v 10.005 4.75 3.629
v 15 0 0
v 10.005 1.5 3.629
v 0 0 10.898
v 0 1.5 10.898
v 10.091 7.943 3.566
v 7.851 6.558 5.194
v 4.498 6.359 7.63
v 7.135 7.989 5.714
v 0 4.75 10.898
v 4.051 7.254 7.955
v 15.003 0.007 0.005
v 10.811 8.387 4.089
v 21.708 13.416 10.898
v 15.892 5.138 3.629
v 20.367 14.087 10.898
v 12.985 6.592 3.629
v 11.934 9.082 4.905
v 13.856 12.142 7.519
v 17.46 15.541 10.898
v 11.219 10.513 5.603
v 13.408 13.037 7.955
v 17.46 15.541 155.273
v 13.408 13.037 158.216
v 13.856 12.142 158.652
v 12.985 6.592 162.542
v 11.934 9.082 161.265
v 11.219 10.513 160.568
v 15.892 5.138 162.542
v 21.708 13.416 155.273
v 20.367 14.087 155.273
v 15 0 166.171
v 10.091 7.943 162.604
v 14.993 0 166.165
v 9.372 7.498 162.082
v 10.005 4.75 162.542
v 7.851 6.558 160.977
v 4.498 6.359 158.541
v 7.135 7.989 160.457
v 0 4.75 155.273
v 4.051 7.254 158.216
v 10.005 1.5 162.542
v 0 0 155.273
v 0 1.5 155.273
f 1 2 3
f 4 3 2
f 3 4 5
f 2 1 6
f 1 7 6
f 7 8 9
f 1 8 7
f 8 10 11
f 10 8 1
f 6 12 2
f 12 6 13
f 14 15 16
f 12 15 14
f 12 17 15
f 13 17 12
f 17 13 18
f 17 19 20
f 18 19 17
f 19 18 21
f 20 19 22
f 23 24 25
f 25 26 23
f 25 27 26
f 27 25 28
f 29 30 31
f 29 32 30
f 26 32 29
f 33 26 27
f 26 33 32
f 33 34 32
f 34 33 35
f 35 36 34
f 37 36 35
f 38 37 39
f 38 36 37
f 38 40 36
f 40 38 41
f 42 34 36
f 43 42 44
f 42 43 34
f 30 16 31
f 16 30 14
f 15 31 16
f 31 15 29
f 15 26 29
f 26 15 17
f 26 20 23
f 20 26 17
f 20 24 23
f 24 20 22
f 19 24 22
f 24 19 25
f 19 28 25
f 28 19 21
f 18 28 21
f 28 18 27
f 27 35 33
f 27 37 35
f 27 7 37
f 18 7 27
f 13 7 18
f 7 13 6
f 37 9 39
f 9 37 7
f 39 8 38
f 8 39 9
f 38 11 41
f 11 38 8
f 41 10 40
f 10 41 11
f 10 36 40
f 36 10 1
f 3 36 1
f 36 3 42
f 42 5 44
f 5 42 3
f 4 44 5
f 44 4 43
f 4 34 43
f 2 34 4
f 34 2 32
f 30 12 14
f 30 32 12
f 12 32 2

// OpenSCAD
// Regular Dodecahedron Edge Ribs


// Cf. https://github.com/openscad/openscad/issues/4603 for a good discussion
// that helped resolve some of the issues in this design.


// Variable parameters to cusomize the edge ribs
paneEdge = (6 * 25.4); // paneEdge (6in x 25.4 mm/in)
edgeThickness = 1.5;   // thickness of the edge
ribWidth = 15;         // width of the rib
paneThickness = 3.25;  // thickness of the pane
channelWidth = 11;     // width of LED strip channel
channelDepth = 1;      // depth of LED strip channel
wireWidth = 3 * 1.6;   // width of wire channel (3x 22 AWG insulated wires)
wireDepth = 1.6;       // depth of wire channel (1x 22 AWG insulated wire)
dihedral = 116.56505;  // angle of polyhedron dihedral
interior = 108.0;      // angle of face interior
fudge = 0.01;          // render artifact elimination fudge factor

// Calculated parameters
edge = 0.667 * ribWidth  * tan(interior / 2) + paneEdge;
echo("pane edge", paneEdge);
echo("edge", edge);

difference() {
    extruded_edge(edge, edgeThickness, ribWidth, paneThickness, channelWidth, channelDepth, wireWidth, wireDepth, dihedral);
    bevel_cuts(ribWidth, interior, dihedral);
    translate([ribWidth,0,edge]) {
        rotate([0,0,180-dihedral]) {
            translate([ribWidth,0,0]) {
                rotate([0,180,0]) {
                    bevel_cuts(ribWidth, interior, dihedral);
                }
            }
        }
    }
}


// Bevel cuts for the end of the rib
module bevel_cuts(ribWidth, interior, dihedral) {
    union() {
        angle_cut(ribWidth, interior);
        translate([ribWidth,0,0]) {
            rotate([0,0,180-dihedral]) {
                translate([ribWidth, 0, 0]) {
                    mirror([1,0,0]) {
                        angle_cut(ribWidth, interior);
                    }
                }
            }
        }
    }
}


// Half of one bevel
module angle_cut(ribWidth, interior) {

    angle_ab = 90 - (interior / 2);

    ax = 0;
    ay = 0;
    az = 0;
    bx = ribWidth;
    by = 0;
    bz = 0;
    cx = 0;
    cy = 0;
    cz = ribWidth * tan(angle_ab);
    dx = 0;
    dy = 20;
    dz = 0;
    ex = ribWidth;
    ey = 20;
    ez = 0;
    fx = 0;
    fy = 20;
    fz = ribWidth * tan(angle_ab);

    polyhedron(
        points=[
            [ax-fudge, ay-fudge, az-fudge], // point a (0)
            [bx, by-fudge, bz],             // point b (1)
            [cx, cy-fudge, cz],             // point c (2)
            [dx-fudge, dy, dz-fudge],       // point d (3)
            [ex, ey, ez],                   // point e (4)
            [fx, fy, fz]                    // point f (5)
        ],
        faces=[
            [0, 3, 5, 2], // face A
            [0, 1, 4, 3], // face B
            [1, 2, 5, 4], // face C
            [3, 4, 5],    // face D
            [0, 2, 1]     // face E
        ],
        convexity=10
    );
};


// Rib extrusion
module extruded_edge(edge, edgeThickness, ribWidth, paneThickness, channelWidth, channelDepth, wireWidth, wireDepth, dihedral) {

    linear_extrude(height=edge, center=false, convexity=10, twist=0, slices=20, scale=1) {
        
        ax = 0;
        ay = 0;
        bx = ribWidth;
        by = 0;
        cx = ribWidth + ribWidth * cos(180 - dihedral);
        cy = ribWidth * sin(180 - dihedral);
        dx = cx - edgeThickness * cos(dihedral - 90);
        dy = cy + edgeThickness * sin(dihedral - 90);
        ex = dx - 0.667 * ribWidth * cos(180 - dihedral);
        ey = dy - 0.667 * ribWidth * sin(180 - dihedral);
        fx = ex - paneThickness * cos(dihedral - 90);
        fy = ey + paneThickness * sin(dihedral - 90);
        gx = fx + 0.667 * ribWidth * cos(180 - dihedral);
        gy = fy + 0.667 * ribWidth * sin(180 - dihedral);
        px = 0;
        py = edgeThickness + paneThickness;
        qx = 0.667 * ribWidth;
        qy = py;
        rx = qx;
        ry = edgeThickness;
        sx = 0;
        sy = ry; 

        angle_opq = atan((gy - py) / gx);  // derived angle of inside edge
        gp = gx / cos(angle_opq);          // total width of inside edge
        gh = 0.5 * (gp - channelWidth);    // width of offset on either side of the LED channel
        ho = gp - 2 * gh;                  // derived width of LED channel (should match specified)
        jm = wireWidth;                    // total width of wire channel
        ij = 0.5 * (ho - jm);              // width of offset on either side of wire channel within the LED channel
        assert(ho == channelWidth, "Derived channel width does not match specified width");
        assert(jm < ho, "Total wire channel width exceeds the width of the LED strip");

        hx = gx - gh * cos(angle_opq);
        hy = gy - gh * sin(angle_opq);
        ix = hx + channelDepth * sin(90 - 2 * angle_opq);
        iy = hy - channelDepth * cos(90 - 2 * angle_opq);
        ox = px + gh * cos(angle_opq);
        oy = py + gh * sin(angle_opq);
        nx = ox + channelDepth * sin(90 - 2 * angle_opq);
        ny = oy - channelDepth * cos(90 - 2 * angle_opq);
        jx = ix - ij * cos(angle_opq);
        jy = iy - ij * sin(angle_opq);
        kx = jx + wireDepth * sin(90 - 2 * angle_opq);
        ky = jy - wireDepth * cos(90 - 2 * angle_opq);
        mx = nx + ij * cos(angle_opq);
        my = ny + ij * sin(angle_opq);
        lx = mx + wireDepth * sin(90 - 2 * angle_opq);
        ly = my - wireDepth * cos(90 - 2 * angle_opq);
                
        polygon([
            [ax, ay], // point 'a'
            [bx, by], // point 'b'
            [cx, cy], // point 'c'
            [dx, dy], // point 'd'
            [ex, ey], // point 'e'
            [fx, fy], // point 'f'
            [gx, gy], // point 'g'
            [hx, hy], // point 'h'
            [ix, iy], // point 'i'
            [jx, jy], // point 'j'
            [kx, ky], // point 'k'
            [lx, ly], // point 'l'
            [mx, my], // point 'm'
            [nx, ny], // point 'n'
            [ox, oy], // point 'o'
            [px, py], // point 'p'
            [qx, qy], // point 'q'
            [rx, ry], // point 'r'
            [sx, sy]  // point 's'
        ]);
    }
};
